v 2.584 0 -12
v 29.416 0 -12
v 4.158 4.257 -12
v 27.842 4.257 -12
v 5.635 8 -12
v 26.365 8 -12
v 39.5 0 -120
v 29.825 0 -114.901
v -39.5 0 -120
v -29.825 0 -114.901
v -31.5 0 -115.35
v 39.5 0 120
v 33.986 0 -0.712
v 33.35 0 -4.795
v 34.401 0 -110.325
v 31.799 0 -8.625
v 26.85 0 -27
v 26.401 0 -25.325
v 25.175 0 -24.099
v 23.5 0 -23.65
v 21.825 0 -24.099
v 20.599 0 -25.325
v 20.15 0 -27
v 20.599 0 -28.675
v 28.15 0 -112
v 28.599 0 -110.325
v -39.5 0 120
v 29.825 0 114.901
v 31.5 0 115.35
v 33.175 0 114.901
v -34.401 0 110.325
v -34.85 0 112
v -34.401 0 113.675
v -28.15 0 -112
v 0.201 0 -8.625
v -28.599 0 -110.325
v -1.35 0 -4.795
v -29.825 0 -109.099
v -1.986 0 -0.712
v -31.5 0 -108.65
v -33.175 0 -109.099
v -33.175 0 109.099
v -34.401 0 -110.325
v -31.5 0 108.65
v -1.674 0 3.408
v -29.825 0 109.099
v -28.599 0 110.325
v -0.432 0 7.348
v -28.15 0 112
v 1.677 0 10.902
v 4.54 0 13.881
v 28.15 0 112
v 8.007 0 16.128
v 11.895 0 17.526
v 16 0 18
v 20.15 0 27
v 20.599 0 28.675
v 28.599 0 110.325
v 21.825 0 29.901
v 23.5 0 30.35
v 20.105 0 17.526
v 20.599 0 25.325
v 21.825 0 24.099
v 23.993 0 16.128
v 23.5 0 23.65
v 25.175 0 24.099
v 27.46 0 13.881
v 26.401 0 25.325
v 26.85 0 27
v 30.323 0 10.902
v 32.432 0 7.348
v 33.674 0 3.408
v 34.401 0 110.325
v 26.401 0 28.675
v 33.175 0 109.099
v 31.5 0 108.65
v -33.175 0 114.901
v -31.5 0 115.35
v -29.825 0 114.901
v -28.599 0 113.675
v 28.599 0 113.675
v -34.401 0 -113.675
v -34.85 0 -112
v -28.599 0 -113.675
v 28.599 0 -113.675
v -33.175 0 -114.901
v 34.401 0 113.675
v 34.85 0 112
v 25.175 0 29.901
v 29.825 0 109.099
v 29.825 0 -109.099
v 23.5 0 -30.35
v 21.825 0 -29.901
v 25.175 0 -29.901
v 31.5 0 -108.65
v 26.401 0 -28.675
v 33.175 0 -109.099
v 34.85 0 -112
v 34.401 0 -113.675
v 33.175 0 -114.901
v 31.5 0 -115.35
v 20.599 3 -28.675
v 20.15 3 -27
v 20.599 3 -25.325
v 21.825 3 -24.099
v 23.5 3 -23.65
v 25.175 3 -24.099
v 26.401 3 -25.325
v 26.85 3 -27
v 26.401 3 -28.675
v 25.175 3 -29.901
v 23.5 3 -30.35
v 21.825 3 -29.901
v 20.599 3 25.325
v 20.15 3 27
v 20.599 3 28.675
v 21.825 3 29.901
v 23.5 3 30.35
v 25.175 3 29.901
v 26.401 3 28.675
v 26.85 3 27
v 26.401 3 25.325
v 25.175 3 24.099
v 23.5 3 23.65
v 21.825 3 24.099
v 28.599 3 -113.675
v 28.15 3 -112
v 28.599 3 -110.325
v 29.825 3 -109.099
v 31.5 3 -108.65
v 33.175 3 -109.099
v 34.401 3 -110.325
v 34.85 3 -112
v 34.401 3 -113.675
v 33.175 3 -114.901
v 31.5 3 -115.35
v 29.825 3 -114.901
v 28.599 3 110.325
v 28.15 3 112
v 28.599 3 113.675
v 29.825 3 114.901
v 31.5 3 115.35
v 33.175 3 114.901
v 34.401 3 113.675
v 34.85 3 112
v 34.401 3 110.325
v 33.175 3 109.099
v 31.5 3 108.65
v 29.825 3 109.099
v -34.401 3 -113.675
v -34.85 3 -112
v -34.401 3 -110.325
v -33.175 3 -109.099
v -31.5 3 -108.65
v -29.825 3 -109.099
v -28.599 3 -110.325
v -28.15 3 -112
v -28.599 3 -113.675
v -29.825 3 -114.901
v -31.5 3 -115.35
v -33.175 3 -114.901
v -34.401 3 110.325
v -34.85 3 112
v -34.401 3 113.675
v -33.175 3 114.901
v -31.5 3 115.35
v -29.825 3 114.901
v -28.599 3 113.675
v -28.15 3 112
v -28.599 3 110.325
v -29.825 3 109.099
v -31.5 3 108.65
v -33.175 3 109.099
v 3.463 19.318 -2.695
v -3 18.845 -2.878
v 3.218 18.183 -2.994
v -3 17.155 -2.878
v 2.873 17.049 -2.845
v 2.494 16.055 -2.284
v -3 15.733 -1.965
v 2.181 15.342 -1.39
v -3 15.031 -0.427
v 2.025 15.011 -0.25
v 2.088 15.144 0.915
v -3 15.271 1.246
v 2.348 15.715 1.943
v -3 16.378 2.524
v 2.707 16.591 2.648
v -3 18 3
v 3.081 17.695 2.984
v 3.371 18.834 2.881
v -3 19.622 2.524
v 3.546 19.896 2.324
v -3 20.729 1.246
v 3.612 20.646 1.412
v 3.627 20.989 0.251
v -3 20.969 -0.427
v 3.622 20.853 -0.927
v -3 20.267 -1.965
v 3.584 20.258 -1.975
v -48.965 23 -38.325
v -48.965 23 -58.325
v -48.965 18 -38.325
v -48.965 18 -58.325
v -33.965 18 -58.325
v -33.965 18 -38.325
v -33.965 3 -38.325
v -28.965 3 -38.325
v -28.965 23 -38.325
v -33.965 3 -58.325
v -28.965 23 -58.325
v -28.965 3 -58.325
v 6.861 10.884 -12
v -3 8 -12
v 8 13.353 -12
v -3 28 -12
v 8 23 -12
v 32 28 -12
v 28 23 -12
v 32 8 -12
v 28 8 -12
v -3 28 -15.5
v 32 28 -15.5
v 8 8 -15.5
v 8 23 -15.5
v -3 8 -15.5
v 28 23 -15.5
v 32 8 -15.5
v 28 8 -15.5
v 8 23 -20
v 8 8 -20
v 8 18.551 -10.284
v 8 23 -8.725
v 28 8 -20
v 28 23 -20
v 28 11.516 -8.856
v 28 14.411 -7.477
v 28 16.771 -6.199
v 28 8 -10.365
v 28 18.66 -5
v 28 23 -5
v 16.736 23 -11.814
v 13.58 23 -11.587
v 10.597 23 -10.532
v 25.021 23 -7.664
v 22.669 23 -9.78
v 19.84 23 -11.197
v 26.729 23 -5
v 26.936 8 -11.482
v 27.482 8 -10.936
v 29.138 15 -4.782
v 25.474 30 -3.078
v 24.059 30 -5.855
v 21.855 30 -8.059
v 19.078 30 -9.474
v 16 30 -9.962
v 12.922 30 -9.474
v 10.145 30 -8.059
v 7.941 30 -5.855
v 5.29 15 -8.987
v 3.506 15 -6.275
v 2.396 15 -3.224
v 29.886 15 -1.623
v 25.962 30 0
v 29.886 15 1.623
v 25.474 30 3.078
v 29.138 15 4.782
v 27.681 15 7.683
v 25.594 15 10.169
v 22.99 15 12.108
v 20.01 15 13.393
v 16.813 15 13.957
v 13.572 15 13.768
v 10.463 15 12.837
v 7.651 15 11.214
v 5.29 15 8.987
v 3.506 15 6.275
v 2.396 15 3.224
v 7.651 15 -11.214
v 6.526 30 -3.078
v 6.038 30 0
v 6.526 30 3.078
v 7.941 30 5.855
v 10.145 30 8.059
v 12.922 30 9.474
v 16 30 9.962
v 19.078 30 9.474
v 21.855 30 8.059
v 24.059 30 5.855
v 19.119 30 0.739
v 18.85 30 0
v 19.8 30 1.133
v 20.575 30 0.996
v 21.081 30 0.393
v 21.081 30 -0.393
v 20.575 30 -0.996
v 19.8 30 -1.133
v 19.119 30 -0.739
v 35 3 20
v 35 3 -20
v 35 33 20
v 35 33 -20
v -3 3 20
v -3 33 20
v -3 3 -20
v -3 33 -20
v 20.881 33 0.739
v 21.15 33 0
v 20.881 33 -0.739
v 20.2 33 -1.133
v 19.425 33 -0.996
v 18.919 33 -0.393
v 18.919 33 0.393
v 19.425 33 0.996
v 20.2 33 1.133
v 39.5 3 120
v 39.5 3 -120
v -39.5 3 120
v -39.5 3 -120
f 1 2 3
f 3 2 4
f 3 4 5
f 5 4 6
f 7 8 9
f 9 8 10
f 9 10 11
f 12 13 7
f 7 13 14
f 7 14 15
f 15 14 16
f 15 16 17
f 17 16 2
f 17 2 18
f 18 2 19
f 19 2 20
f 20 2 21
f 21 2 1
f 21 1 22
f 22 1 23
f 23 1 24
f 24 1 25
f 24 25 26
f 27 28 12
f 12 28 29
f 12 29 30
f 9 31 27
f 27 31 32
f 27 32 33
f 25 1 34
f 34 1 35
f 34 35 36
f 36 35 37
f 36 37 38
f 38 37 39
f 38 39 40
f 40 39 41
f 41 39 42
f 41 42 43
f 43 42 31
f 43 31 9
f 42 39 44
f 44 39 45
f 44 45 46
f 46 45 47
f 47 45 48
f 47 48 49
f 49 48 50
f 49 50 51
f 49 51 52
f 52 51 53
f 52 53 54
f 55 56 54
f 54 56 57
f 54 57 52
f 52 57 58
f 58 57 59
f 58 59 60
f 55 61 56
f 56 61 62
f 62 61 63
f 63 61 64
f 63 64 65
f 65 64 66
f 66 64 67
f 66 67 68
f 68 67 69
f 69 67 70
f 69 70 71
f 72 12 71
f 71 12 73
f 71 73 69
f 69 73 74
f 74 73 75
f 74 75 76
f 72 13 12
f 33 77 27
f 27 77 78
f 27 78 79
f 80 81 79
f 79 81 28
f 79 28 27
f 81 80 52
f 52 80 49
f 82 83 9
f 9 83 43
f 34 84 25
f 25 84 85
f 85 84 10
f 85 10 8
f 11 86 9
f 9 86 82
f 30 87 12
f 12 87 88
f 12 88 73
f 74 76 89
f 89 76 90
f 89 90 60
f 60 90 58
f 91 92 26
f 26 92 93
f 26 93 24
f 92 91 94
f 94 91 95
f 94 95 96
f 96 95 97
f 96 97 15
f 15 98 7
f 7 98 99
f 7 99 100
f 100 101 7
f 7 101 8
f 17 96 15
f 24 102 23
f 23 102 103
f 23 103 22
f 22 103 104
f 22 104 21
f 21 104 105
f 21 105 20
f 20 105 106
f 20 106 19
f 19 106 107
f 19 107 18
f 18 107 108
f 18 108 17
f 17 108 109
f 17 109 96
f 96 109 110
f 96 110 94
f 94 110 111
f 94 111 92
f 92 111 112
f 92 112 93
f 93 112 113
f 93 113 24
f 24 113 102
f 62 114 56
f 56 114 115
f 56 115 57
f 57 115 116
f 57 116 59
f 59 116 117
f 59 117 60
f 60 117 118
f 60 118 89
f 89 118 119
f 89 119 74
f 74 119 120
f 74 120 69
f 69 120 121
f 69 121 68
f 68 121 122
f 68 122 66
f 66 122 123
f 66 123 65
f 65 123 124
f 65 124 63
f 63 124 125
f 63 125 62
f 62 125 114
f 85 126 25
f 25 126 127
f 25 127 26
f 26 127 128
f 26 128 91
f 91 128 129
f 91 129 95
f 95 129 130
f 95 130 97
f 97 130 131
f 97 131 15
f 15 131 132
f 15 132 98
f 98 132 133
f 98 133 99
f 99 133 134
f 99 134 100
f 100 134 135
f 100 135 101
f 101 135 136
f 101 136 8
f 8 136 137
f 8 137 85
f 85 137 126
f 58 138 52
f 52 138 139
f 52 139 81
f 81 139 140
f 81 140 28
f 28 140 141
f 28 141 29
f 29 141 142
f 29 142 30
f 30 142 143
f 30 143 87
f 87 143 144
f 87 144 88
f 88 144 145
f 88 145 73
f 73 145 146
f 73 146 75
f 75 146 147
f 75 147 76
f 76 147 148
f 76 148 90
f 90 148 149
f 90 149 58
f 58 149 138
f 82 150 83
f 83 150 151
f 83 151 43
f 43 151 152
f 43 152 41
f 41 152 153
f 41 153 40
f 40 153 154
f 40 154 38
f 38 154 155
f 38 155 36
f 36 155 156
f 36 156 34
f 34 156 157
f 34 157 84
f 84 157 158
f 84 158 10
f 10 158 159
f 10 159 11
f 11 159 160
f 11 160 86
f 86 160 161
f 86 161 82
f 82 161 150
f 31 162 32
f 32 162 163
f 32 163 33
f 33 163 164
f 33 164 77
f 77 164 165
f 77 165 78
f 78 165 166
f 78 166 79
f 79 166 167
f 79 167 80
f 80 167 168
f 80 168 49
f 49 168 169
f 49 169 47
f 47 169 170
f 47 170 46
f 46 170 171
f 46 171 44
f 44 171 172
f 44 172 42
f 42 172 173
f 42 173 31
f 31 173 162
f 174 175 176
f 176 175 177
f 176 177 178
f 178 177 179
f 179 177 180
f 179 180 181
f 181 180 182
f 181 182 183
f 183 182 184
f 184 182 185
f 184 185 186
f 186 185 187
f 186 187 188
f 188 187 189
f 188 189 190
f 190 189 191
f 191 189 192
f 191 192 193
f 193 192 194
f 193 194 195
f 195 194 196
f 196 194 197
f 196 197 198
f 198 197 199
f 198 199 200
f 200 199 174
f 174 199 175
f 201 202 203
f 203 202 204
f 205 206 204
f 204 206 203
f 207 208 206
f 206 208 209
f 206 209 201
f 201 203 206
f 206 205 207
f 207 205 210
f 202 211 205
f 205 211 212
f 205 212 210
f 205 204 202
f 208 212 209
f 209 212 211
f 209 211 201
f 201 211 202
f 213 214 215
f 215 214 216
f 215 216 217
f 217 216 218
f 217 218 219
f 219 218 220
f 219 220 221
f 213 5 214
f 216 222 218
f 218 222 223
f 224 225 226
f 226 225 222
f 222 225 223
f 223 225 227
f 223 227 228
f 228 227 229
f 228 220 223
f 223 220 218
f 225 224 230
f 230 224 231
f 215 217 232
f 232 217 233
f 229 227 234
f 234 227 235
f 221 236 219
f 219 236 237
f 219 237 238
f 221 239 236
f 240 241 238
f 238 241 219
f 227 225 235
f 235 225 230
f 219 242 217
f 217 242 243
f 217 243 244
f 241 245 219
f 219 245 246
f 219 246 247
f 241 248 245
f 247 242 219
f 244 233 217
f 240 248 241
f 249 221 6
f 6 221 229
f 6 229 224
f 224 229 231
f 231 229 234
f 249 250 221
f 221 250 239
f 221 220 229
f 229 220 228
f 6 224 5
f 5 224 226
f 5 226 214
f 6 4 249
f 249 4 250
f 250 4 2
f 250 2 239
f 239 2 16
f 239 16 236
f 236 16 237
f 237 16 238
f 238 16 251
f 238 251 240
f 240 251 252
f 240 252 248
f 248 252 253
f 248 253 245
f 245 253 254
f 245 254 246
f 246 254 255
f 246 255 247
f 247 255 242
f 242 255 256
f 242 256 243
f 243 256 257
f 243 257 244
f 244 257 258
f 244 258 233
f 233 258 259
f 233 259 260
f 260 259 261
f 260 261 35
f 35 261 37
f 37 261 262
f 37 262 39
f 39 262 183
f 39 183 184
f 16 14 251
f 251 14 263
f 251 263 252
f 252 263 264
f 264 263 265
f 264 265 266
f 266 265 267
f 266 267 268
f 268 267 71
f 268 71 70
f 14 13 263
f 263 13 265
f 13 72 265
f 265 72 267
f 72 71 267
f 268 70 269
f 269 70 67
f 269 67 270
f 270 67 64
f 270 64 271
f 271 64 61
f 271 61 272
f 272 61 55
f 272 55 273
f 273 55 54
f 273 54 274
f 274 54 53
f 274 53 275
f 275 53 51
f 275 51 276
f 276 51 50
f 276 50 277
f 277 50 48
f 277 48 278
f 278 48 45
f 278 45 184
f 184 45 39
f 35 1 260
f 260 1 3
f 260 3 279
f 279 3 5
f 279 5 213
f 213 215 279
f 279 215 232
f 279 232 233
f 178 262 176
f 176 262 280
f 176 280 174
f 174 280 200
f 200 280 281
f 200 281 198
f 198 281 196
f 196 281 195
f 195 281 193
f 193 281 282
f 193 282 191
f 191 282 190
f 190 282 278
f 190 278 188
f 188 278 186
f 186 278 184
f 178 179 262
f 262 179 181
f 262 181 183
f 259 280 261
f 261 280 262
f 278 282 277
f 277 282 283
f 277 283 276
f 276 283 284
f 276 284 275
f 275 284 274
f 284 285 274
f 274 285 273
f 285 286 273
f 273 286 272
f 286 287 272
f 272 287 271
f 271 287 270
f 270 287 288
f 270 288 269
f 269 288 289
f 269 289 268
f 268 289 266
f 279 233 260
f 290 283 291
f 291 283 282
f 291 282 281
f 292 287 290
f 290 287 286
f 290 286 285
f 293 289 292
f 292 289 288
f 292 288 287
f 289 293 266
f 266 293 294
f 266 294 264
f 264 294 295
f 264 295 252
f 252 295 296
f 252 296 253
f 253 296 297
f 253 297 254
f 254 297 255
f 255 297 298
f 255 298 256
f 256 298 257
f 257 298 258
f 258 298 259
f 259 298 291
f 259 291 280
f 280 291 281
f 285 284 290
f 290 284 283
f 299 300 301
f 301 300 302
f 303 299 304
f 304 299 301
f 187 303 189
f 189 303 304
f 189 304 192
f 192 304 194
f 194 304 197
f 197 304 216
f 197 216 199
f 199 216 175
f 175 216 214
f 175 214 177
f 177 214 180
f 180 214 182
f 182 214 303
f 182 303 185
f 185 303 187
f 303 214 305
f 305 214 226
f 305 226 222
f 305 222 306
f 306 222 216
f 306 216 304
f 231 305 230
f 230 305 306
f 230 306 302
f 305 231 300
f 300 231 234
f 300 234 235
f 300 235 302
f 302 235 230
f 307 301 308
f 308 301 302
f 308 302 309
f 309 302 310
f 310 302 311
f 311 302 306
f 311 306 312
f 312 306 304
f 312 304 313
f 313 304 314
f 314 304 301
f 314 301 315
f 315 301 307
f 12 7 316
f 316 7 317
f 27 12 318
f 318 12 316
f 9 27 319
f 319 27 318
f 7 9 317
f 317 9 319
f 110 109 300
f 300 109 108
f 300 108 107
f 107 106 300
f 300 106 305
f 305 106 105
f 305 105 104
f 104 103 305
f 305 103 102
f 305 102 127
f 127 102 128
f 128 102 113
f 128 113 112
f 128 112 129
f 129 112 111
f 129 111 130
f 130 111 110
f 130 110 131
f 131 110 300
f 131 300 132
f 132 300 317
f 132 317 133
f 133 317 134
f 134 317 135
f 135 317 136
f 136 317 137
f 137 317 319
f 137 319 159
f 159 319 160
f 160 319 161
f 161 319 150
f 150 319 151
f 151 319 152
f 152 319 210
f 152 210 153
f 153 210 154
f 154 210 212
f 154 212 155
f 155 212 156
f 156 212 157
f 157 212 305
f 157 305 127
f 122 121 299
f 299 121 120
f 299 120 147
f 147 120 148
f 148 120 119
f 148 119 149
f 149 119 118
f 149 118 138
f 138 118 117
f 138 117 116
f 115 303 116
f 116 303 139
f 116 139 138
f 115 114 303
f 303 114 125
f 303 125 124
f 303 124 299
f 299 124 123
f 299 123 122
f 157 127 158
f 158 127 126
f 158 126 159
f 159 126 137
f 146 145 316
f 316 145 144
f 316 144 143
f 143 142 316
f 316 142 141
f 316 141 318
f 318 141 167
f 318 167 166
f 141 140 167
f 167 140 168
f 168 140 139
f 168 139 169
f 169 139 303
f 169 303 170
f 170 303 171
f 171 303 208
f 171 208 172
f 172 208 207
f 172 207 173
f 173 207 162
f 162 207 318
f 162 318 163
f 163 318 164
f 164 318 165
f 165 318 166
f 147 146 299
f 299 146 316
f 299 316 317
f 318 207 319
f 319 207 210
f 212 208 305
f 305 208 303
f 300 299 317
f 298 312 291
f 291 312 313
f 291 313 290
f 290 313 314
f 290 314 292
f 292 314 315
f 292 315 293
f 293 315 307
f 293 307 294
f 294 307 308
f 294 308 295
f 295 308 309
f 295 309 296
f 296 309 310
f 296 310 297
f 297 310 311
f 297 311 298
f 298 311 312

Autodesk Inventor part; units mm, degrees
ref_plane "YZ Plane" through (0, 0, 0) normal (1, 0, 0) x (0, 1, 0)
ref_plane "XZ Plane" through (0, 0, 0) normal (0, 1, 0) x (-1, 0, 0)
ref_plane "XY Plane" through (0, 0, 0) normal (0, 0, 1) x (1, 0, 0)
sketch "Sketch44" plane through (0, 0, 0) normal (0, 1, 0) x (-1, 0, 0)
  line L0 (-39.5, 120) -> (39.5, 120)
  line L1 (39.5, 120) -> (39.5, -120)
  line L2 (39.5, -120) -> (-39.5, -120)
  line L3 (-39.5, -120) -> (-39.5, 120)
  line L4 (-39.5, 120) -> (39.5, -120) construction
  line L5 (39.5, 120) -> (-39.5, -120) construction
  point P0 (0, 0)
  dimension "d138" = 79
  dimension "d139" = 240
extrude "Extrusion33" add sketch "Sketch44" along normal blind 3
sketch "Sketch45" plane through (0, 3, 0) normal (0, 1, 0) x (1, 0, 0)
  line L0 (35, -20) -> (-3, -20)
  line L1 (-3, -20) -> (-3, 20)
  line L2 (-3, 20) -> (35, 20)
  line L3 (35, 20) -> (35, -20)
  point P0 (0, 0)
  dimension "d142" = 38
  dimension "d143" = 40
extrude "Extrusion34" add sketch "Sketch45" along normal blind 30
sketch "Sketch47" plane through (0, 0, 0) normal (0, -1, 0) x (1, 0, 0)
  circle A0 centre (16, 0) radius 18
  point P0 (0, 0)
  dimension "d146" = 36
extrude "Extrusion35" cut sketch "Sketch47" against normal blind 30 draft -15
sketch "Sketch58" plane through (35, 3, -20) normal (0, 0, -1) x (-1, 0, 0)
  line L0 (7, 20) -> (27, 20)
  line L1 (27, 20) -> (27, 5)
  line L2 (27, 5) -> (7, 5)
  line L3 (7, 5) -> (7, 20)
  point P0 (35, -3)
  dimension "d156" = 20
  dimension "d157" = 15
extrude "Extrusion38" cut sketch "Sketch58" against normal blind 15
sketch "Sketch59" plane through (-3, 3, -20) normal (-1, 0, 0) x (0, 0, 1)
  line L0 (4.5, 25) -> (8, 25)
  line L1 (8, 25) -> (8, 5)
  line L2 (8, 5) -> (4.5, 5)
  line L3 (4.5, 5) -> (4.5, 25)
  point P0 (20, -3)
  dimension "d160" = 3.5
  dimension "d161" = 20
extrude "Extrusion39" cut sketch "Sketch59" against normal blind 35
sketch "Sketch60" plane through (0, 3, 0) normal (0, 1, 0) x (1, 0, 0)
  line L0 (-33.965, 38.3247) -> (-28.965, 38.3247)
  line L1 (-28.965, 38.3247) -> (-28.965, 58.3247)
  line L2 (-28.965, 58.3247) -> (-33.965, 58.3247)
  line L3 (-33.965, 58.3247) -> (-33.965, 38.3247)
  point P0 (0, 0)
  dimension "d164" = 5
  dimension "d165" = 20
extrude "Extrusion40" add sketch "Sketch60" along normal blind 20
sketch "Sketch61" plane through (0, 23, 0) normal (0, 1, 0) x (1, 0, 0)
  line L0 (-28.965, 38.3247) -> (-28.965, 58.3247) projected
  line L1 (-28.965, 38.3247) -> (-48.965, 38.3247)
  line L2 (-48.965, 38.3247) -> (-48.965, 58.3247)
  line L3 (-48.965, 58.3247) -> (-28.965, 58.3247)
  line L4 (-28.965, 58.3247) -> (-28.965, 38.3247)
  point P0 (0, 0)
  dimension "d168" = 20
  dimension "d169" = 20
extrude "Extrusion41" add sketch "Sketch61" against normal blind 5
sketch "Sketch65" plane through (-3, 3, -20) normal (-1, 0, 0) x (0, 0, 1)
  circle A0 centre (20, 15) radius 3
  point P0 (20, -3)
  dimension "d176" = 6
extrude "Extrusion43" cut sketch "Sketch65" against normal blind 10
sketch "Sketch68" plane through (0, 3, 0) normal (0, 1, 0) x (1, 0, 0)
  circle A0 centre (-31.5, -112) radius 3.35
  circle A1 centre (31.5, -112) radius 3.35
  circle A2 centre (-31.5, 112) radius 3.35
  circle A3 centre (31.5, 112) radius 3.35
  point P0 (0, 0)
  dimension "d192" = 6.7
  dimension "d193" = 6.7
  dimension "d194" = 6.7
  dimension "d195" = 6.7
extrude "Extrusion46" cut sketch "Sketch68" against normal through all
sketch "Sketch69" plane through (0, 3, 0) normal (0, 1, 0) x (1, 0, 0)
  circle A0 centre (23.5, -27) radius 3.35
  circle A1 centre (23.5, 27) radius 3.35
  point P0 (0, 0)
  dimension "d198" = 6.7
  dimension "d199" = 6.7
extrude "Extrusion47" cut sketch "Sketch69" against normal through all
sketch "Sketch70" plane through (0, 0, 0) normal (0, -1, 0) x (1, 0, 0)
  line L0 (-3, -12) -> (32, -12) projected
  line L1 (2.479, -12) -> (29.6644, -12)
  line L2 (29.6644, -12) -> (29.6644, -18.105)
  line L3 (29.6644, -18.105) -> (2.479, -18.105)
  line L4 (2.479, -18.105) -> (2.479, -12)
  point P0 (0, 0)
extrude "Extrusion48" add sketch "Sketch70" against normal blind 8
sketch "Sketch74" plane through (0, 33, 0) normal (0, 1, 0) x (1, 0, 0)
  circle A0 centre (20, 0) radius 1.15
  point P0 (0, 0)
  dimension "d210" = 2.3
extrude "Extrusion51" cut sketch "Sketch74" against normal blind 10
equation "\"d193\" = d192"
equation "\"d194\" = d192"
equation "\"d195\" = d192"
equation "\"d198\" = d192"
equation "\"d199\" = d192"
properties part number "liquid port_v10"
